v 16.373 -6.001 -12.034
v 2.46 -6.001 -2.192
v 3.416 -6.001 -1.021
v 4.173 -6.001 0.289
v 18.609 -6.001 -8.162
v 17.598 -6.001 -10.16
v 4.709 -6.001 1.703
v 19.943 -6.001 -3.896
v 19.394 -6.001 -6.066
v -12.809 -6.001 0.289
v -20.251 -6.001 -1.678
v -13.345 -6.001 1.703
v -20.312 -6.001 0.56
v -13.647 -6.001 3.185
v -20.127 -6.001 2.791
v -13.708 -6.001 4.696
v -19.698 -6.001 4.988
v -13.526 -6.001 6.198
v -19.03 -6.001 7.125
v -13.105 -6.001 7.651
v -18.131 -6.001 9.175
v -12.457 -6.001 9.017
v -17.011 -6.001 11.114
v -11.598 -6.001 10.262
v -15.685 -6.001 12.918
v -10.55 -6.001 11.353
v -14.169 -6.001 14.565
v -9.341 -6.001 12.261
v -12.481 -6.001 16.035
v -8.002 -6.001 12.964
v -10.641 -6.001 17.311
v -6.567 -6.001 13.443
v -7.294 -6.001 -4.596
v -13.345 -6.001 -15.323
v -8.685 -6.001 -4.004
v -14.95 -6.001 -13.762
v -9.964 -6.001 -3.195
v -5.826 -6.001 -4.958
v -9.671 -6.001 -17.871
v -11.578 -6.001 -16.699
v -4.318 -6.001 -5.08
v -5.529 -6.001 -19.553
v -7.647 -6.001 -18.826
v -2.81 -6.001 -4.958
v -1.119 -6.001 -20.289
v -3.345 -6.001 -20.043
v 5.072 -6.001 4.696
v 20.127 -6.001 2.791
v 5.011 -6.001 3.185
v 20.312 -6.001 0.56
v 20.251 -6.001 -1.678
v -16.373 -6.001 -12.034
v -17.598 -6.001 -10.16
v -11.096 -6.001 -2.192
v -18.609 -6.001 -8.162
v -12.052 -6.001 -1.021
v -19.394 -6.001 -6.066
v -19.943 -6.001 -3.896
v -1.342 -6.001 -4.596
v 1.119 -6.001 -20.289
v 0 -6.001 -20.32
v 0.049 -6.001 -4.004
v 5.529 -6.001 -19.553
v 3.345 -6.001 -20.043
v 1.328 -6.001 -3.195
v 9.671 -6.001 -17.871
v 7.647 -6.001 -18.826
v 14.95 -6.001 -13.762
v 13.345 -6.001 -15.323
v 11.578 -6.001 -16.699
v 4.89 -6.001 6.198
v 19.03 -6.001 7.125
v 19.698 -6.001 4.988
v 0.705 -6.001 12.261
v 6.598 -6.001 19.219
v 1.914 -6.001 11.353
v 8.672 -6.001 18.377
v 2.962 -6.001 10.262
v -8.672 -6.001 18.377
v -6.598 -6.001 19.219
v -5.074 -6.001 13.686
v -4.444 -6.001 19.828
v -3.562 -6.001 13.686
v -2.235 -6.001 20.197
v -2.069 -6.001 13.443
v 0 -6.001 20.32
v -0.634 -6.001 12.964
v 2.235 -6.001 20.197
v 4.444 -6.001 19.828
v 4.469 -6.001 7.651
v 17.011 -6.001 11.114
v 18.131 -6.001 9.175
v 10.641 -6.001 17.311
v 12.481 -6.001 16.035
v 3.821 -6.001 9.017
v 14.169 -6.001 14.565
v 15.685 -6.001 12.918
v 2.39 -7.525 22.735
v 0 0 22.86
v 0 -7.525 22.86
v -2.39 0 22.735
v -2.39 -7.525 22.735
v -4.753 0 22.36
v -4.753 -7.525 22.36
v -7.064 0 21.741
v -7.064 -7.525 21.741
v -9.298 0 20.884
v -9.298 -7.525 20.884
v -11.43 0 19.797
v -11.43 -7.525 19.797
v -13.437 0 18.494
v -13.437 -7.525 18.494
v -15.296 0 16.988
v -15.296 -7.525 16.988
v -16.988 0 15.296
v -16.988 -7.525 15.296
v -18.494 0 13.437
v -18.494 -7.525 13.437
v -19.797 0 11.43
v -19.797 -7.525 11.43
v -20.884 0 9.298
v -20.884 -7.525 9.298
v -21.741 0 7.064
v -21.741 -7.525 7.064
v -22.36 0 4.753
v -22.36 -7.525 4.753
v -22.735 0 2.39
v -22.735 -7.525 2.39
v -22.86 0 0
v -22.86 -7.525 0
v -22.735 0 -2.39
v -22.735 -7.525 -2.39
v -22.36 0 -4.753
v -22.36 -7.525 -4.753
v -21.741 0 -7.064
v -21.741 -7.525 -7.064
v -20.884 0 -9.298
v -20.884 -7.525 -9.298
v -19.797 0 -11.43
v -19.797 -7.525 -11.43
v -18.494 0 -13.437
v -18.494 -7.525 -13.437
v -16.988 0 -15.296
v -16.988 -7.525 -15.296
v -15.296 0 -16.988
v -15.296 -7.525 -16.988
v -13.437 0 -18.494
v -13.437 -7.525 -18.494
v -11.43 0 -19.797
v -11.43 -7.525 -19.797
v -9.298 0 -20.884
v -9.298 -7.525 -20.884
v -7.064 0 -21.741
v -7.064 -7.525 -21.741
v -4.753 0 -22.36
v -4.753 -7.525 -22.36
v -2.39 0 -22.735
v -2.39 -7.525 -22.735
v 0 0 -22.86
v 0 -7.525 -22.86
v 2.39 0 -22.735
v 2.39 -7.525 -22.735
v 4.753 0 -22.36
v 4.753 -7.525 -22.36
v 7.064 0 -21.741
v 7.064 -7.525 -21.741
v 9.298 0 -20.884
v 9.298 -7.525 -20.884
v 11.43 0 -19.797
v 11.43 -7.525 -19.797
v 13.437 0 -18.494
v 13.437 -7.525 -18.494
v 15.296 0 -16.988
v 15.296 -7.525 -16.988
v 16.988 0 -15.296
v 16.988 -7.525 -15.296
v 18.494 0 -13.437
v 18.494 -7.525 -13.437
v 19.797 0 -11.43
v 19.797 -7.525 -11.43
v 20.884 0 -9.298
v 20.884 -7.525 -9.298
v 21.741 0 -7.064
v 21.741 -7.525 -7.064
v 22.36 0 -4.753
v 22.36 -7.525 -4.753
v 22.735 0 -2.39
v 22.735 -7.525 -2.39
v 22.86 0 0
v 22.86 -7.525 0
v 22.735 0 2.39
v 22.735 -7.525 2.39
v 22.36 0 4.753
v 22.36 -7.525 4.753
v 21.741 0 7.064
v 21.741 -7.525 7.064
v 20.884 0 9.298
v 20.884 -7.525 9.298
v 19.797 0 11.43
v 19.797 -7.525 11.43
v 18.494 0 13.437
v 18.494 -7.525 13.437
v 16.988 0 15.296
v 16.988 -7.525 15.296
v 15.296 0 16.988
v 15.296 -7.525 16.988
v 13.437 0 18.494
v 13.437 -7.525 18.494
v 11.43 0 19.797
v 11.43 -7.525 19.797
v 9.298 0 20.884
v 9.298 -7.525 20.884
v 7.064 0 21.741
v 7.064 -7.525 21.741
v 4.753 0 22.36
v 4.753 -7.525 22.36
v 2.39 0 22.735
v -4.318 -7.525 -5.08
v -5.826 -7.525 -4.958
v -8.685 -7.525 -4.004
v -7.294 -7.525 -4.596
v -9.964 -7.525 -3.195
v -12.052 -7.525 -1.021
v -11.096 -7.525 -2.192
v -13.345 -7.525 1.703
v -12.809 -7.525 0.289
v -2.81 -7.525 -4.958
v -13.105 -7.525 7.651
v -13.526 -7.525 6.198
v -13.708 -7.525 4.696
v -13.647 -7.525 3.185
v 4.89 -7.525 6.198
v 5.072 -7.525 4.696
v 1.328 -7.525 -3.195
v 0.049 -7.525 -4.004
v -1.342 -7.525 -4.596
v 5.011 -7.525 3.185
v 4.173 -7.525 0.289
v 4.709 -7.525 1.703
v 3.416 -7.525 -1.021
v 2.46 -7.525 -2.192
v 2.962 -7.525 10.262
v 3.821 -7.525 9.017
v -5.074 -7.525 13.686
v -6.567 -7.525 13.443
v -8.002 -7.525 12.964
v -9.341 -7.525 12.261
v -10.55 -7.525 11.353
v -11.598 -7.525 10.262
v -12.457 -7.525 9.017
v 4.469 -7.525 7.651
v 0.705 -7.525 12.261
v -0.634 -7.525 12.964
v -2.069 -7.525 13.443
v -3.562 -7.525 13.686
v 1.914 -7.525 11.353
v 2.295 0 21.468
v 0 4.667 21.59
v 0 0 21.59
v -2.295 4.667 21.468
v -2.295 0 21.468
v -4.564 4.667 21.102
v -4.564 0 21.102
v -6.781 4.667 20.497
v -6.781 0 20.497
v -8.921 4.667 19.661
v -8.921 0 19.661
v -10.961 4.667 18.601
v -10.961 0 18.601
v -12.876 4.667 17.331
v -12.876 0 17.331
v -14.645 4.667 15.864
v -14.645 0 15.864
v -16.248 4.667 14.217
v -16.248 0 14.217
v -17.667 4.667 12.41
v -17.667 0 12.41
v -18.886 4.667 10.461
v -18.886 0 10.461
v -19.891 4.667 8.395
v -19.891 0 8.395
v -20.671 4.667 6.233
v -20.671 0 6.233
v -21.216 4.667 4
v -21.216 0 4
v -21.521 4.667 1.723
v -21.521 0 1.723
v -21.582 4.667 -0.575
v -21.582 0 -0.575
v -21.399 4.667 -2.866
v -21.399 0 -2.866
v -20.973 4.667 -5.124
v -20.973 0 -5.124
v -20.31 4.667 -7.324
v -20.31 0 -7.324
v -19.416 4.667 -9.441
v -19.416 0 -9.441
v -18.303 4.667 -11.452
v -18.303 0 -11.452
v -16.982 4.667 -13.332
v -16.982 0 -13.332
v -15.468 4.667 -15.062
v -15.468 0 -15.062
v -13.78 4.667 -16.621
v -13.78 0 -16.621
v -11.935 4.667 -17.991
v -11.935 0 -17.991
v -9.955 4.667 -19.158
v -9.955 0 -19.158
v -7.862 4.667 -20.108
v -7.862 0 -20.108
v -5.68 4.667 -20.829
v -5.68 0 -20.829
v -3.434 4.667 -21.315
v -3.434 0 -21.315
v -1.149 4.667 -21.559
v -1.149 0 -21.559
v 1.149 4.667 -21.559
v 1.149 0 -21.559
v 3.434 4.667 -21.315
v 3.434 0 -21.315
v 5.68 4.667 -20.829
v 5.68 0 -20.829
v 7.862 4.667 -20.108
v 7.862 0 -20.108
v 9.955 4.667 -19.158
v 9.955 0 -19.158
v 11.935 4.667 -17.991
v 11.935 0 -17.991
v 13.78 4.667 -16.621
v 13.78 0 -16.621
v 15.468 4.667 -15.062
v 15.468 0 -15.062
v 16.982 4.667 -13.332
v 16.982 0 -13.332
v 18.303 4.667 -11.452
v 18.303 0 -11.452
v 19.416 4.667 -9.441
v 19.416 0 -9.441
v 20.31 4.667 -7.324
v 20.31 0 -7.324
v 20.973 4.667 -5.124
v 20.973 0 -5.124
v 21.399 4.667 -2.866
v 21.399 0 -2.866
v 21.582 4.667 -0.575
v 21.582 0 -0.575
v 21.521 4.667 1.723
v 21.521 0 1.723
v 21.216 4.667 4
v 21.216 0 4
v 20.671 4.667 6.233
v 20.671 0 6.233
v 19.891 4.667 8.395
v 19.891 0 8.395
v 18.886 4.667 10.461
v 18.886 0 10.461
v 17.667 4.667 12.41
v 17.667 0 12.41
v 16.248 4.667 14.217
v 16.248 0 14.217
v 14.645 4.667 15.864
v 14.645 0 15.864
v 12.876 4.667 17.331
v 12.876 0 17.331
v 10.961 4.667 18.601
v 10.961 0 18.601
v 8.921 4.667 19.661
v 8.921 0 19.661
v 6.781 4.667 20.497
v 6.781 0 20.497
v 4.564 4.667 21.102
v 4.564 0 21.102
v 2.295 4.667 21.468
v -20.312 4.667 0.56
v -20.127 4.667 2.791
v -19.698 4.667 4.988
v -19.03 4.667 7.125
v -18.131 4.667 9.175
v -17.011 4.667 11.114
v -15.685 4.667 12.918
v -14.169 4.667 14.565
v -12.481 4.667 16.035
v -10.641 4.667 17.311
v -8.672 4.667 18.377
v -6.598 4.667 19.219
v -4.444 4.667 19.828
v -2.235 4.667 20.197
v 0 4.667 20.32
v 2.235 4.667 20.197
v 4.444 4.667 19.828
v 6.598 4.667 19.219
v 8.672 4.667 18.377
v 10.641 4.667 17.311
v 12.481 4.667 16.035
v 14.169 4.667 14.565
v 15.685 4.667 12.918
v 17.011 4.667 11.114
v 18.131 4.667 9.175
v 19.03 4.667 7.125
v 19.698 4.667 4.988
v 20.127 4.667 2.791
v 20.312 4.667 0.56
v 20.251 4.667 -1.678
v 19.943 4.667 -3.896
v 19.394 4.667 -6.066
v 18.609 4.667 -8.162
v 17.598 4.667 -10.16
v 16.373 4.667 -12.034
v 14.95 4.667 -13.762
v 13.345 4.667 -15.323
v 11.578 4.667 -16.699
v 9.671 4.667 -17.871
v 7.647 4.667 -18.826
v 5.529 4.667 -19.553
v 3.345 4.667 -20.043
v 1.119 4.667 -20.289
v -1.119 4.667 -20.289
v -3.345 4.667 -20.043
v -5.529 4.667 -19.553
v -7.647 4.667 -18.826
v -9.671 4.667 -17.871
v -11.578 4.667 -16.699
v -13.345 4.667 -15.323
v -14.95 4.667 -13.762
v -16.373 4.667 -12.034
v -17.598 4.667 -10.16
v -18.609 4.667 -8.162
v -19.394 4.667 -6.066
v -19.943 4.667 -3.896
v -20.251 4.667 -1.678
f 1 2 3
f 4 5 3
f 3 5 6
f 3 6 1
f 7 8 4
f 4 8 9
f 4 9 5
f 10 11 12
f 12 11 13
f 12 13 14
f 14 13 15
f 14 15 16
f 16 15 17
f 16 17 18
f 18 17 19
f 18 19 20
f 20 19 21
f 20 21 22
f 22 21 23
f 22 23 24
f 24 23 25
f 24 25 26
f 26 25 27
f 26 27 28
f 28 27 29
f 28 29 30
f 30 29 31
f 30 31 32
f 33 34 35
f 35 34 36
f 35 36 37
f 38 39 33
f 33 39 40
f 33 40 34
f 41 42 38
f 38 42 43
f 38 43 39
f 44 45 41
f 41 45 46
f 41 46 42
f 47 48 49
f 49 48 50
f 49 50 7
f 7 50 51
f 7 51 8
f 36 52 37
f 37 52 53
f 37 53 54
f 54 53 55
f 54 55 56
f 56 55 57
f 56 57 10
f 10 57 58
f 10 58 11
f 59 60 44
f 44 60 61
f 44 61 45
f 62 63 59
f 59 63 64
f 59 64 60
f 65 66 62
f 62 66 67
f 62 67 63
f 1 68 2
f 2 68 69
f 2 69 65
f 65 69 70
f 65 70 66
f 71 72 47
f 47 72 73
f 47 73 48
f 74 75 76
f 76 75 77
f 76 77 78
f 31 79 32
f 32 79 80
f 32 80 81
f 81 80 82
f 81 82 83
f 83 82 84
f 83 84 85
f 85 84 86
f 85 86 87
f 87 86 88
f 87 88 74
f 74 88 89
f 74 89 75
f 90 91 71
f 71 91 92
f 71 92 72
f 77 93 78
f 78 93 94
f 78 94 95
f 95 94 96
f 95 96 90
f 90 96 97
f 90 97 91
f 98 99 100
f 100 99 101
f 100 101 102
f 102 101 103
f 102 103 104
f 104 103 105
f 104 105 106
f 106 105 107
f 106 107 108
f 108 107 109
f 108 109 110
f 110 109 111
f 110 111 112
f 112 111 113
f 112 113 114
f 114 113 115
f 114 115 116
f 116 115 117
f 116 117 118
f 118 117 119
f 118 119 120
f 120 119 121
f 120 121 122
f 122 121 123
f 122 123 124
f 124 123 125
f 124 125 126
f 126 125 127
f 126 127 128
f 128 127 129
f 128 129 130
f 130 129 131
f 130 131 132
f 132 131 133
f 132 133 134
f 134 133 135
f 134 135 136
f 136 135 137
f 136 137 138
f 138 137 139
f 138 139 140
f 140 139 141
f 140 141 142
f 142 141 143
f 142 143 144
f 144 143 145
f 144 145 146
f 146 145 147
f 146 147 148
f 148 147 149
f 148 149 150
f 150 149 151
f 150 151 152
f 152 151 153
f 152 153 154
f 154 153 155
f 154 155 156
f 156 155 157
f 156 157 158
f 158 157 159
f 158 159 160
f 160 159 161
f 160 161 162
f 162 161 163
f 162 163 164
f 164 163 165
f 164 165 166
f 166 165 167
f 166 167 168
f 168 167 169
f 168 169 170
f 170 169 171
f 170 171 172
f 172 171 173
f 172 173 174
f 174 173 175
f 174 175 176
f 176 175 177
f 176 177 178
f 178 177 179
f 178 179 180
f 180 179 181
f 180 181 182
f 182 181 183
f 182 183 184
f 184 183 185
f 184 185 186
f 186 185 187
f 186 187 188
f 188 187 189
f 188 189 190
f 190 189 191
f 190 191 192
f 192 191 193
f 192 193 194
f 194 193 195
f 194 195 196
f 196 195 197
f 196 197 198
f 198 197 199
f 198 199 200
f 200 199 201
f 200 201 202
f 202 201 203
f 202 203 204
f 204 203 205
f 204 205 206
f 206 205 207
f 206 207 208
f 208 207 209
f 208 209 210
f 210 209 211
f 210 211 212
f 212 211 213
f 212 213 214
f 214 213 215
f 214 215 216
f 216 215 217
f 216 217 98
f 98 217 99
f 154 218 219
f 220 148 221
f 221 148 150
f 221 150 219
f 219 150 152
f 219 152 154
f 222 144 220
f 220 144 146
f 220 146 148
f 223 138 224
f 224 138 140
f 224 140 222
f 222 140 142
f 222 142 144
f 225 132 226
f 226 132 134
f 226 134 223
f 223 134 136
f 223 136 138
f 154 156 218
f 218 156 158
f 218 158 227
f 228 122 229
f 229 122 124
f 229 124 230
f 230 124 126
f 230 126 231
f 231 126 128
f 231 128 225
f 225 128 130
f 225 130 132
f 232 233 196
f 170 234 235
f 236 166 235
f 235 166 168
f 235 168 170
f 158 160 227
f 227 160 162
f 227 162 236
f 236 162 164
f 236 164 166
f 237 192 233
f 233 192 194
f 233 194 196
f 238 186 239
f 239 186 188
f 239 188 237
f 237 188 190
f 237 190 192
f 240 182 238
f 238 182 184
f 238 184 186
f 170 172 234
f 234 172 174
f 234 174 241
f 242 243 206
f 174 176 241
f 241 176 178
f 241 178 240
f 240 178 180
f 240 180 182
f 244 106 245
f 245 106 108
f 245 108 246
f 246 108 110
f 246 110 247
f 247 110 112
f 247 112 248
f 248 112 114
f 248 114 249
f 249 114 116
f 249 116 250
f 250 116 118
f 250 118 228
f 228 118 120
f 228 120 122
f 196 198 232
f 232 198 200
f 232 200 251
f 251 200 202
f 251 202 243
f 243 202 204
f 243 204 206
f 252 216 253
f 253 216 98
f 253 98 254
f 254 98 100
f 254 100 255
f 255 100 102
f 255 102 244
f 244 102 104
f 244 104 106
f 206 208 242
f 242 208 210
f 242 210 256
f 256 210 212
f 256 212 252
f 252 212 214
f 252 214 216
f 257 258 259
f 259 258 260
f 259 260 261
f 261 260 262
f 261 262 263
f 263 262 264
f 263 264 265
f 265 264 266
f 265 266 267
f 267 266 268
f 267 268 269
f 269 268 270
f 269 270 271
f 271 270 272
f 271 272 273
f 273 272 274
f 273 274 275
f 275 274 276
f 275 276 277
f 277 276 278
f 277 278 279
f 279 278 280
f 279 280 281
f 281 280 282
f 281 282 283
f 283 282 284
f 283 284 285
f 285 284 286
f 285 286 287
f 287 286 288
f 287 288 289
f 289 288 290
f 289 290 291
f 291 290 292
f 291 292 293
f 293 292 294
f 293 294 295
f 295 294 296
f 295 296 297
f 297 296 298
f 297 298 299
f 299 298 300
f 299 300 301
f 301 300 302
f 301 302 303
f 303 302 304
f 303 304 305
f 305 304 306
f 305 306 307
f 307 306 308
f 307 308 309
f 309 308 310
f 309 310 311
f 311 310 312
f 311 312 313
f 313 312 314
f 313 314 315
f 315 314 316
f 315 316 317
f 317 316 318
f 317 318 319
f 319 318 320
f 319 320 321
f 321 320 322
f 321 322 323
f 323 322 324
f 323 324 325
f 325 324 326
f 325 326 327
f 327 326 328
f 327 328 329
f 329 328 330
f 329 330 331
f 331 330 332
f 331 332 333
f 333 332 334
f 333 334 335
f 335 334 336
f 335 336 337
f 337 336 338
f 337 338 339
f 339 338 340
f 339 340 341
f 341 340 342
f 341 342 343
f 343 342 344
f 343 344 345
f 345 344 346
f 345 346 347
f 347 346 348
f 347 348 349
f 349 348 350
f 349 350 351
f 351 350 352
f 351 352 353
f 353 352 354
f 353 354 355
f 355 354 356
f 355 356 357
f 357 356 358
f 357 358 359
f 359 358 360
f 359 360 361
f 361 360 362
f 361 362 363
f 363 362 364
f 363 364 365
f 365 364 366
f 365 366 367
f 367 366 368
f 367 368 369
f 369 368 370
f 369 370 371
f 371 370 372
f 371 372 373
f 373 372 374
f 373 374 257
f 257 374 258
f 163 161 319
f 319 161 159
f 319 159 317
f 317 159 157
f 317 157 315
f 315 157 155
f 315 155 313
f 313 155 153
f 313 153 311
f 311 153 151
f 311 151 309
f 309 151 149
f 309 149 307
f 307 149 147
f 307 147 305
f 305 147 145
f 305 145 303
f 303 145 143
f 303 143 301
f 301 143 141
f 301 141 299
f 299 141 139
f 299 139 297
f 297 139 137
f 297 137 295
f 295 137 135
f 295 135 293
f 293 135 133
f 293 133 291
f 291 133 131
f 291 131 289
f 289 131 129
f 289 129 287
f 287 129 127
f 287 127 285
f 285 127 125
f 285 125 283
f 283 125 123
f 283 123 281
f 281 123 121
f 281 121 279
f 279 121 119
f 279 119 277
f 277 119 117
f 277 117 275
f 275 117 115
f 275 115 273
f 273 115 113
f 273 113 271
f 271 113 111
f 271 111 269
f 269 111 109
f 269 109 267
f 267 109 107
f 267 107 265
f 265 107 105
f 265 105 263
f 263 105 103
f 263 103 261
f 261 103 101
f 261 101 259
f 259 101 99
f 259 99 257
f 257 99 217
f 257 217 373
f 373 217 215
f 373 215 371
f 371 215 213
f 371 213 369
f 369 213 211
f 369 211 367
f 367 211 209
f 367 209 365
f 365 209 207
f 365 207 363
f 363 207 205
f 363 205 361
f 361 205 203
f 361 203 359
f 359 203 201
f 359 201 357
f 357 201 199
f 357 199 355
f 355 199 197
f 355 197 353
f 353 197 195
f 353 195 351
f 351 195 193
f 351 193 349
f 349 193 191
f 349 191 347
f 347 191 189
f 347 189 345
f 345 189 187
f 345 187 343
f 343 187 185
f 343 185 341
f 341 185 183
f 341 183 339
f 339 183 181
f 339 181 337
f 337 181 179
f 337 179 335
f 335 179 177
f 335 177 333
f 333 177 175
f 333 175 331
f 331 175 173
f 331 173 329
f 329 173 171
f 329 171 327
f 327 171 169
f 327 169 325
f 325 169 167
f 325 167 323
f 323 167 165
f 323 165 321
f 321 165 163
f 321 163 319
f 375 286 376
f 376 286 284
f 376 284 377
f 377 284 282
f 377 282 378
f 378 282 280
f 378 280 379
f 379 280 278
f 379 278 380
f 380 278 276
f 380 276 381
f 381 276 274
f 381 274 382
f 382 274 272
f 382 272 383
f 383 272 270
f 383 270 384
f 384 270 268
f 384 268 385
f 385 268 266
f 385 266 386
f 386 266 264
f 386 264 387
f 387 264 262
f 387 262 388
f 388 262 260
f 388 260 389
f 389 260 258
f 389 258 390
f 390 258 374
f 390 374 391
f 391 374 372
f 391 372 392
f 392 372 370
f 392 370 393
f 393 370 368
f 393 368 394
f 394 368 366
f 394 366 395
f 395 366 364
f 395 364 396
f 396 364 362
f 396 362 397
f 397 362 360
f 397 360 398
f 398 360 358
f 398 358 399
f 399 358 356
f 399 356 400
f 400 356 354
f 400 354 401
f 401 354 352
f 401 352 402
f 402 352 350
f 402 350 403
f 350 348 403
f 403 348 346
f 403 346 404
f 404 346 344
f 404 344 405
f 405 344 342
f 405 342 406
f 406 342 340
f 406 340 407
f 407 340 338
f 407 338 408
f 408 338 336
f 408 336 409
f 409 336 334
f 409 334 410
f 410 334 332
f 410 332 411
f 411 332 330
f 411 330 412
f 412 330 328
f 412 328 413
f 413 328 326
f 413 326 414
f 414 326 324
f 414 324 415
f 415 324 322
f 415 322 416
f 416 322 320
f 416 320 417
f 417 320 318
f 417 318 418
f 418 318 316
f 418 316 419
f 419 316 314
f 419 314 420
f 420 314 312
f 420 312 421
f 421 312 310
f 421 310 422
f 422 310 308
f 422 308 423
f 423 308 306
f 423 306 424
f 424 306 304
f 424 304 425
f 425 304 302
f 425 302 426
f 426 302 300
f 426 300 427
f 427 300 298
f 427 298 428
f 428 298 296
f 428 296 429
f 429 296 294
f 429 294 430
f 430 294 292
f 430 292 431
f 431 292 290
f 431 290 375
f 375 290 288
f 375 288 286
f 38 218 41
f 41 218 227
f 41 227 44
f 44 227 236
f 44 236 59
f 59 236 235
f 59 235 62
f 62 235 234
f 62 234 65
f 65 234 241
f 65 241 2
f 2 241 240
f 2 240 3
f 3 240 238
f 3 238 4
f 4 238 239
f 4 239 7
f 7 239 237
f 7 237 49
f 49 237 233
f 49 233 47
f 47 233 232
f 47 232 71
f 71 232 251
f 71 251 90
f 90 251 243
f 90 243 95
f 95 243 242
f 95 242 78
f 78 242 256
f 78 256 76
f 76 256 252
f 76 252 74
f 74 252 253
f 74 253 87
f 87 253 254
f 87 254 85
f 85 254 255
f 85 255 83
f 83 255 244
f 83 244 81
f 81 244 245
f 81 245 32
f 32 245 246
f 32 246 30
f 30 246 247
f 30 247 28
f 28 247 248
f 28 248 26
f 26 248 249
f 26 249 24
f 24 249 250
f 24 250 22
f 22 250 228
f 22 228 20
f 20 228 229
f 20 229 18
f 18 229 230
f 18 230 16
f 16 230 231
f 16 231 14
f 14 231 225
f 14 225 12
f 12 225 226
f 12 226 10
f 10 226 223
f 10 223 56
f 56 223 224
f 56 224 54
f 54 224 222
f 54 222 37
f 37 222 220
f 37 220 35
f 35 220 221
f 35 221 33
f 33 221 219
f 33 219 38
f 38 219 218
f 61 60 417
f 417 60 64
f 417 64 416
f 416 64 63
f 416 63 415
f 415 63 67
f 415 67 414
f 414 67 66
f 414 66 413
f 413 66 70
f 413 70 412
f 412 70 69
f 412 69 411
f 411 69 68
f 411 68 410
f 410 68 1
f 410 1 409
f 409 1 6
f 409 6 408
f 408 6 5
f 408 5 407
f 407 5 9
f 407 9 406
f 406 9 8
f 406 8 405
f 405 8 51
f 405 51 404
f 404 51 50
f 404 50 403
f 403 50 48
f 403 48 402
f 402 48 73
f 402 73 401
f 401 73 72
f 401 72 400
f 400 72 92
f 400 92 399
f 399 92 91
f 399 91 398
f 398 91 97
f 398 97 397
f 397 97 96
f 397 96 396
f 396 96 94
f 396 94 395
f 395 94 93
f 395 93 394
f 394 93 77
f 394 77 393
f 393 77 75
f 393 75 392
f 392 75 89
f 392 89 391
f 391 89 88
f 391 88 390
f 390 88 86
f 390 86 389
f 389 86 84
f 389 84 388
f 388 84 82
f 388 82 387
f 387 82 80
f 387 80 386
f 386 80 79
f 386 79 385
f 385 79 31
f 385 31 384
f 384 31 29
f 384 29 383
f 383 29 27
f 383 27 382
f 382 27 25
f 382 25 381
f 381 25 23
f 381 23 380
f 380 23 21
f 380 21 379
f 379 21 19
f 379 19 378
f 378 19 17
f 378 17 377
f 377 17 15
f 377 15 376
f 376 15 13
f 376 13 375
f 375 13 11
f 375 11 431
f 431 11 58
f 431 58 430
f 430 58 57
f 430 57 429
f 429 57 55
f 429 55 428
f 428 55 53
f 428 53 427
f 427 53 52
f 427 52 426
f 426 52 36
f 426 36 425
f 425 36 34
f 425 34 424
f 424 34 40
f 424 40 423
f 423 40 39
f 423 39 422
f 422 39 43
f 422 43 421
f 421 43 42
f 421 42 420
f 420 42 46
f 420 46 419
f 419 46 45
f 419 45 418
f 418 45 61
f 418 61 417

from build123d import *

# Parameters (mm, degrees)
CUT_EXTRUDE1_REACH  = 36.551
SKETCH2_R           = 22.225
SKETCH2_R_2         = 21.59
SKETCH3_R           = 9.398
CUT_EXTRUDE2_DEPTH  = 35.551469781
SKETCH5_R           = 20.955
SKETCH5_R_2         = 20.32
BOSS_EXTRUDE1_DEPTH = 10.668


with BuildPart() as part:
    # Sketch1 → Revolve1 (revolve)
    with BuildSketch(Plane.XY, mode=Mode.PRIVATE) as revolve1_sk:
        Polygon((22.86, 0), (22.86, -7.52475), (0, -7.52475), (0, -6.00075), (20.955, -6.00075), (20.955, 4.66725), (22.225, 4.66725), (22.225, 2.286), (21.59, 2.286), (21.59, 0), (22.225, 0), align=None)
    revolve(revolve1_sk.sketch.rotate(Axis((0, 33.267670174, 0), (0, -1, 0)), 90), axis=Axis((0, 33.267670174, 0), (0, -1, 0)))

    # Sketch2 → Cut-Extrude1 (cut, up to next)
    with BuildSketch(Plane(origin=(0, 4.66725, 0), x_dir=(1, 0, 0), z_dir=(0, 1, 0)), mode=Mode.PRIVATE) as cut_extrude1_sk1:
        Circle(SKETCH2_R)
        with Locations(Location((0, 0, 0), (0, 0, 270))):
            Circle(SKETCH2_R_2, mode=Mode.SUBTRACT)
    cut_extrude1_tool1 = extrude(cut_extrude1_sk1.sketch, amount=-CUT_EXTRUDE1_REACH, mode=Mode.PRIVATE) & part.part
    add(cut_extrude1_tool1.solids().sort_by_distance((-21.596382, 4.66725, 0))[0], mode=Mode.SUBTRACT)

    # Sketch3 → Cut-Extrude2 (cut, through all)
    with BuildSketch(Plane.XZ.offset(7.52475)):
        with Locations(Location((-4.318, 4.318, 0), (0, 0, 270))):
            Circle(SKETCH3_R)
    extrude(amount=-CUT_EXTRUDE2_DEPTH, mode=Mode.SUBTRACT)

    # Sketch5 → Boss-Extrude1 (add)
    with BuildSketch(Plane(origin=(0, 4.66725, 0), x_dir=(1, 0, 0), z_dir=(0, 1, 0))):
        Circle(SKETCH5_R)
        with Locations(Location((0, 0, 0), (0, 0, 270))):
            Circle(SKETCH5_R_2, mode=Mode.SUBTRACT)
    extrude(amount=-BOSS_EXTRUDE1_DEPTH)


solid = part.part
